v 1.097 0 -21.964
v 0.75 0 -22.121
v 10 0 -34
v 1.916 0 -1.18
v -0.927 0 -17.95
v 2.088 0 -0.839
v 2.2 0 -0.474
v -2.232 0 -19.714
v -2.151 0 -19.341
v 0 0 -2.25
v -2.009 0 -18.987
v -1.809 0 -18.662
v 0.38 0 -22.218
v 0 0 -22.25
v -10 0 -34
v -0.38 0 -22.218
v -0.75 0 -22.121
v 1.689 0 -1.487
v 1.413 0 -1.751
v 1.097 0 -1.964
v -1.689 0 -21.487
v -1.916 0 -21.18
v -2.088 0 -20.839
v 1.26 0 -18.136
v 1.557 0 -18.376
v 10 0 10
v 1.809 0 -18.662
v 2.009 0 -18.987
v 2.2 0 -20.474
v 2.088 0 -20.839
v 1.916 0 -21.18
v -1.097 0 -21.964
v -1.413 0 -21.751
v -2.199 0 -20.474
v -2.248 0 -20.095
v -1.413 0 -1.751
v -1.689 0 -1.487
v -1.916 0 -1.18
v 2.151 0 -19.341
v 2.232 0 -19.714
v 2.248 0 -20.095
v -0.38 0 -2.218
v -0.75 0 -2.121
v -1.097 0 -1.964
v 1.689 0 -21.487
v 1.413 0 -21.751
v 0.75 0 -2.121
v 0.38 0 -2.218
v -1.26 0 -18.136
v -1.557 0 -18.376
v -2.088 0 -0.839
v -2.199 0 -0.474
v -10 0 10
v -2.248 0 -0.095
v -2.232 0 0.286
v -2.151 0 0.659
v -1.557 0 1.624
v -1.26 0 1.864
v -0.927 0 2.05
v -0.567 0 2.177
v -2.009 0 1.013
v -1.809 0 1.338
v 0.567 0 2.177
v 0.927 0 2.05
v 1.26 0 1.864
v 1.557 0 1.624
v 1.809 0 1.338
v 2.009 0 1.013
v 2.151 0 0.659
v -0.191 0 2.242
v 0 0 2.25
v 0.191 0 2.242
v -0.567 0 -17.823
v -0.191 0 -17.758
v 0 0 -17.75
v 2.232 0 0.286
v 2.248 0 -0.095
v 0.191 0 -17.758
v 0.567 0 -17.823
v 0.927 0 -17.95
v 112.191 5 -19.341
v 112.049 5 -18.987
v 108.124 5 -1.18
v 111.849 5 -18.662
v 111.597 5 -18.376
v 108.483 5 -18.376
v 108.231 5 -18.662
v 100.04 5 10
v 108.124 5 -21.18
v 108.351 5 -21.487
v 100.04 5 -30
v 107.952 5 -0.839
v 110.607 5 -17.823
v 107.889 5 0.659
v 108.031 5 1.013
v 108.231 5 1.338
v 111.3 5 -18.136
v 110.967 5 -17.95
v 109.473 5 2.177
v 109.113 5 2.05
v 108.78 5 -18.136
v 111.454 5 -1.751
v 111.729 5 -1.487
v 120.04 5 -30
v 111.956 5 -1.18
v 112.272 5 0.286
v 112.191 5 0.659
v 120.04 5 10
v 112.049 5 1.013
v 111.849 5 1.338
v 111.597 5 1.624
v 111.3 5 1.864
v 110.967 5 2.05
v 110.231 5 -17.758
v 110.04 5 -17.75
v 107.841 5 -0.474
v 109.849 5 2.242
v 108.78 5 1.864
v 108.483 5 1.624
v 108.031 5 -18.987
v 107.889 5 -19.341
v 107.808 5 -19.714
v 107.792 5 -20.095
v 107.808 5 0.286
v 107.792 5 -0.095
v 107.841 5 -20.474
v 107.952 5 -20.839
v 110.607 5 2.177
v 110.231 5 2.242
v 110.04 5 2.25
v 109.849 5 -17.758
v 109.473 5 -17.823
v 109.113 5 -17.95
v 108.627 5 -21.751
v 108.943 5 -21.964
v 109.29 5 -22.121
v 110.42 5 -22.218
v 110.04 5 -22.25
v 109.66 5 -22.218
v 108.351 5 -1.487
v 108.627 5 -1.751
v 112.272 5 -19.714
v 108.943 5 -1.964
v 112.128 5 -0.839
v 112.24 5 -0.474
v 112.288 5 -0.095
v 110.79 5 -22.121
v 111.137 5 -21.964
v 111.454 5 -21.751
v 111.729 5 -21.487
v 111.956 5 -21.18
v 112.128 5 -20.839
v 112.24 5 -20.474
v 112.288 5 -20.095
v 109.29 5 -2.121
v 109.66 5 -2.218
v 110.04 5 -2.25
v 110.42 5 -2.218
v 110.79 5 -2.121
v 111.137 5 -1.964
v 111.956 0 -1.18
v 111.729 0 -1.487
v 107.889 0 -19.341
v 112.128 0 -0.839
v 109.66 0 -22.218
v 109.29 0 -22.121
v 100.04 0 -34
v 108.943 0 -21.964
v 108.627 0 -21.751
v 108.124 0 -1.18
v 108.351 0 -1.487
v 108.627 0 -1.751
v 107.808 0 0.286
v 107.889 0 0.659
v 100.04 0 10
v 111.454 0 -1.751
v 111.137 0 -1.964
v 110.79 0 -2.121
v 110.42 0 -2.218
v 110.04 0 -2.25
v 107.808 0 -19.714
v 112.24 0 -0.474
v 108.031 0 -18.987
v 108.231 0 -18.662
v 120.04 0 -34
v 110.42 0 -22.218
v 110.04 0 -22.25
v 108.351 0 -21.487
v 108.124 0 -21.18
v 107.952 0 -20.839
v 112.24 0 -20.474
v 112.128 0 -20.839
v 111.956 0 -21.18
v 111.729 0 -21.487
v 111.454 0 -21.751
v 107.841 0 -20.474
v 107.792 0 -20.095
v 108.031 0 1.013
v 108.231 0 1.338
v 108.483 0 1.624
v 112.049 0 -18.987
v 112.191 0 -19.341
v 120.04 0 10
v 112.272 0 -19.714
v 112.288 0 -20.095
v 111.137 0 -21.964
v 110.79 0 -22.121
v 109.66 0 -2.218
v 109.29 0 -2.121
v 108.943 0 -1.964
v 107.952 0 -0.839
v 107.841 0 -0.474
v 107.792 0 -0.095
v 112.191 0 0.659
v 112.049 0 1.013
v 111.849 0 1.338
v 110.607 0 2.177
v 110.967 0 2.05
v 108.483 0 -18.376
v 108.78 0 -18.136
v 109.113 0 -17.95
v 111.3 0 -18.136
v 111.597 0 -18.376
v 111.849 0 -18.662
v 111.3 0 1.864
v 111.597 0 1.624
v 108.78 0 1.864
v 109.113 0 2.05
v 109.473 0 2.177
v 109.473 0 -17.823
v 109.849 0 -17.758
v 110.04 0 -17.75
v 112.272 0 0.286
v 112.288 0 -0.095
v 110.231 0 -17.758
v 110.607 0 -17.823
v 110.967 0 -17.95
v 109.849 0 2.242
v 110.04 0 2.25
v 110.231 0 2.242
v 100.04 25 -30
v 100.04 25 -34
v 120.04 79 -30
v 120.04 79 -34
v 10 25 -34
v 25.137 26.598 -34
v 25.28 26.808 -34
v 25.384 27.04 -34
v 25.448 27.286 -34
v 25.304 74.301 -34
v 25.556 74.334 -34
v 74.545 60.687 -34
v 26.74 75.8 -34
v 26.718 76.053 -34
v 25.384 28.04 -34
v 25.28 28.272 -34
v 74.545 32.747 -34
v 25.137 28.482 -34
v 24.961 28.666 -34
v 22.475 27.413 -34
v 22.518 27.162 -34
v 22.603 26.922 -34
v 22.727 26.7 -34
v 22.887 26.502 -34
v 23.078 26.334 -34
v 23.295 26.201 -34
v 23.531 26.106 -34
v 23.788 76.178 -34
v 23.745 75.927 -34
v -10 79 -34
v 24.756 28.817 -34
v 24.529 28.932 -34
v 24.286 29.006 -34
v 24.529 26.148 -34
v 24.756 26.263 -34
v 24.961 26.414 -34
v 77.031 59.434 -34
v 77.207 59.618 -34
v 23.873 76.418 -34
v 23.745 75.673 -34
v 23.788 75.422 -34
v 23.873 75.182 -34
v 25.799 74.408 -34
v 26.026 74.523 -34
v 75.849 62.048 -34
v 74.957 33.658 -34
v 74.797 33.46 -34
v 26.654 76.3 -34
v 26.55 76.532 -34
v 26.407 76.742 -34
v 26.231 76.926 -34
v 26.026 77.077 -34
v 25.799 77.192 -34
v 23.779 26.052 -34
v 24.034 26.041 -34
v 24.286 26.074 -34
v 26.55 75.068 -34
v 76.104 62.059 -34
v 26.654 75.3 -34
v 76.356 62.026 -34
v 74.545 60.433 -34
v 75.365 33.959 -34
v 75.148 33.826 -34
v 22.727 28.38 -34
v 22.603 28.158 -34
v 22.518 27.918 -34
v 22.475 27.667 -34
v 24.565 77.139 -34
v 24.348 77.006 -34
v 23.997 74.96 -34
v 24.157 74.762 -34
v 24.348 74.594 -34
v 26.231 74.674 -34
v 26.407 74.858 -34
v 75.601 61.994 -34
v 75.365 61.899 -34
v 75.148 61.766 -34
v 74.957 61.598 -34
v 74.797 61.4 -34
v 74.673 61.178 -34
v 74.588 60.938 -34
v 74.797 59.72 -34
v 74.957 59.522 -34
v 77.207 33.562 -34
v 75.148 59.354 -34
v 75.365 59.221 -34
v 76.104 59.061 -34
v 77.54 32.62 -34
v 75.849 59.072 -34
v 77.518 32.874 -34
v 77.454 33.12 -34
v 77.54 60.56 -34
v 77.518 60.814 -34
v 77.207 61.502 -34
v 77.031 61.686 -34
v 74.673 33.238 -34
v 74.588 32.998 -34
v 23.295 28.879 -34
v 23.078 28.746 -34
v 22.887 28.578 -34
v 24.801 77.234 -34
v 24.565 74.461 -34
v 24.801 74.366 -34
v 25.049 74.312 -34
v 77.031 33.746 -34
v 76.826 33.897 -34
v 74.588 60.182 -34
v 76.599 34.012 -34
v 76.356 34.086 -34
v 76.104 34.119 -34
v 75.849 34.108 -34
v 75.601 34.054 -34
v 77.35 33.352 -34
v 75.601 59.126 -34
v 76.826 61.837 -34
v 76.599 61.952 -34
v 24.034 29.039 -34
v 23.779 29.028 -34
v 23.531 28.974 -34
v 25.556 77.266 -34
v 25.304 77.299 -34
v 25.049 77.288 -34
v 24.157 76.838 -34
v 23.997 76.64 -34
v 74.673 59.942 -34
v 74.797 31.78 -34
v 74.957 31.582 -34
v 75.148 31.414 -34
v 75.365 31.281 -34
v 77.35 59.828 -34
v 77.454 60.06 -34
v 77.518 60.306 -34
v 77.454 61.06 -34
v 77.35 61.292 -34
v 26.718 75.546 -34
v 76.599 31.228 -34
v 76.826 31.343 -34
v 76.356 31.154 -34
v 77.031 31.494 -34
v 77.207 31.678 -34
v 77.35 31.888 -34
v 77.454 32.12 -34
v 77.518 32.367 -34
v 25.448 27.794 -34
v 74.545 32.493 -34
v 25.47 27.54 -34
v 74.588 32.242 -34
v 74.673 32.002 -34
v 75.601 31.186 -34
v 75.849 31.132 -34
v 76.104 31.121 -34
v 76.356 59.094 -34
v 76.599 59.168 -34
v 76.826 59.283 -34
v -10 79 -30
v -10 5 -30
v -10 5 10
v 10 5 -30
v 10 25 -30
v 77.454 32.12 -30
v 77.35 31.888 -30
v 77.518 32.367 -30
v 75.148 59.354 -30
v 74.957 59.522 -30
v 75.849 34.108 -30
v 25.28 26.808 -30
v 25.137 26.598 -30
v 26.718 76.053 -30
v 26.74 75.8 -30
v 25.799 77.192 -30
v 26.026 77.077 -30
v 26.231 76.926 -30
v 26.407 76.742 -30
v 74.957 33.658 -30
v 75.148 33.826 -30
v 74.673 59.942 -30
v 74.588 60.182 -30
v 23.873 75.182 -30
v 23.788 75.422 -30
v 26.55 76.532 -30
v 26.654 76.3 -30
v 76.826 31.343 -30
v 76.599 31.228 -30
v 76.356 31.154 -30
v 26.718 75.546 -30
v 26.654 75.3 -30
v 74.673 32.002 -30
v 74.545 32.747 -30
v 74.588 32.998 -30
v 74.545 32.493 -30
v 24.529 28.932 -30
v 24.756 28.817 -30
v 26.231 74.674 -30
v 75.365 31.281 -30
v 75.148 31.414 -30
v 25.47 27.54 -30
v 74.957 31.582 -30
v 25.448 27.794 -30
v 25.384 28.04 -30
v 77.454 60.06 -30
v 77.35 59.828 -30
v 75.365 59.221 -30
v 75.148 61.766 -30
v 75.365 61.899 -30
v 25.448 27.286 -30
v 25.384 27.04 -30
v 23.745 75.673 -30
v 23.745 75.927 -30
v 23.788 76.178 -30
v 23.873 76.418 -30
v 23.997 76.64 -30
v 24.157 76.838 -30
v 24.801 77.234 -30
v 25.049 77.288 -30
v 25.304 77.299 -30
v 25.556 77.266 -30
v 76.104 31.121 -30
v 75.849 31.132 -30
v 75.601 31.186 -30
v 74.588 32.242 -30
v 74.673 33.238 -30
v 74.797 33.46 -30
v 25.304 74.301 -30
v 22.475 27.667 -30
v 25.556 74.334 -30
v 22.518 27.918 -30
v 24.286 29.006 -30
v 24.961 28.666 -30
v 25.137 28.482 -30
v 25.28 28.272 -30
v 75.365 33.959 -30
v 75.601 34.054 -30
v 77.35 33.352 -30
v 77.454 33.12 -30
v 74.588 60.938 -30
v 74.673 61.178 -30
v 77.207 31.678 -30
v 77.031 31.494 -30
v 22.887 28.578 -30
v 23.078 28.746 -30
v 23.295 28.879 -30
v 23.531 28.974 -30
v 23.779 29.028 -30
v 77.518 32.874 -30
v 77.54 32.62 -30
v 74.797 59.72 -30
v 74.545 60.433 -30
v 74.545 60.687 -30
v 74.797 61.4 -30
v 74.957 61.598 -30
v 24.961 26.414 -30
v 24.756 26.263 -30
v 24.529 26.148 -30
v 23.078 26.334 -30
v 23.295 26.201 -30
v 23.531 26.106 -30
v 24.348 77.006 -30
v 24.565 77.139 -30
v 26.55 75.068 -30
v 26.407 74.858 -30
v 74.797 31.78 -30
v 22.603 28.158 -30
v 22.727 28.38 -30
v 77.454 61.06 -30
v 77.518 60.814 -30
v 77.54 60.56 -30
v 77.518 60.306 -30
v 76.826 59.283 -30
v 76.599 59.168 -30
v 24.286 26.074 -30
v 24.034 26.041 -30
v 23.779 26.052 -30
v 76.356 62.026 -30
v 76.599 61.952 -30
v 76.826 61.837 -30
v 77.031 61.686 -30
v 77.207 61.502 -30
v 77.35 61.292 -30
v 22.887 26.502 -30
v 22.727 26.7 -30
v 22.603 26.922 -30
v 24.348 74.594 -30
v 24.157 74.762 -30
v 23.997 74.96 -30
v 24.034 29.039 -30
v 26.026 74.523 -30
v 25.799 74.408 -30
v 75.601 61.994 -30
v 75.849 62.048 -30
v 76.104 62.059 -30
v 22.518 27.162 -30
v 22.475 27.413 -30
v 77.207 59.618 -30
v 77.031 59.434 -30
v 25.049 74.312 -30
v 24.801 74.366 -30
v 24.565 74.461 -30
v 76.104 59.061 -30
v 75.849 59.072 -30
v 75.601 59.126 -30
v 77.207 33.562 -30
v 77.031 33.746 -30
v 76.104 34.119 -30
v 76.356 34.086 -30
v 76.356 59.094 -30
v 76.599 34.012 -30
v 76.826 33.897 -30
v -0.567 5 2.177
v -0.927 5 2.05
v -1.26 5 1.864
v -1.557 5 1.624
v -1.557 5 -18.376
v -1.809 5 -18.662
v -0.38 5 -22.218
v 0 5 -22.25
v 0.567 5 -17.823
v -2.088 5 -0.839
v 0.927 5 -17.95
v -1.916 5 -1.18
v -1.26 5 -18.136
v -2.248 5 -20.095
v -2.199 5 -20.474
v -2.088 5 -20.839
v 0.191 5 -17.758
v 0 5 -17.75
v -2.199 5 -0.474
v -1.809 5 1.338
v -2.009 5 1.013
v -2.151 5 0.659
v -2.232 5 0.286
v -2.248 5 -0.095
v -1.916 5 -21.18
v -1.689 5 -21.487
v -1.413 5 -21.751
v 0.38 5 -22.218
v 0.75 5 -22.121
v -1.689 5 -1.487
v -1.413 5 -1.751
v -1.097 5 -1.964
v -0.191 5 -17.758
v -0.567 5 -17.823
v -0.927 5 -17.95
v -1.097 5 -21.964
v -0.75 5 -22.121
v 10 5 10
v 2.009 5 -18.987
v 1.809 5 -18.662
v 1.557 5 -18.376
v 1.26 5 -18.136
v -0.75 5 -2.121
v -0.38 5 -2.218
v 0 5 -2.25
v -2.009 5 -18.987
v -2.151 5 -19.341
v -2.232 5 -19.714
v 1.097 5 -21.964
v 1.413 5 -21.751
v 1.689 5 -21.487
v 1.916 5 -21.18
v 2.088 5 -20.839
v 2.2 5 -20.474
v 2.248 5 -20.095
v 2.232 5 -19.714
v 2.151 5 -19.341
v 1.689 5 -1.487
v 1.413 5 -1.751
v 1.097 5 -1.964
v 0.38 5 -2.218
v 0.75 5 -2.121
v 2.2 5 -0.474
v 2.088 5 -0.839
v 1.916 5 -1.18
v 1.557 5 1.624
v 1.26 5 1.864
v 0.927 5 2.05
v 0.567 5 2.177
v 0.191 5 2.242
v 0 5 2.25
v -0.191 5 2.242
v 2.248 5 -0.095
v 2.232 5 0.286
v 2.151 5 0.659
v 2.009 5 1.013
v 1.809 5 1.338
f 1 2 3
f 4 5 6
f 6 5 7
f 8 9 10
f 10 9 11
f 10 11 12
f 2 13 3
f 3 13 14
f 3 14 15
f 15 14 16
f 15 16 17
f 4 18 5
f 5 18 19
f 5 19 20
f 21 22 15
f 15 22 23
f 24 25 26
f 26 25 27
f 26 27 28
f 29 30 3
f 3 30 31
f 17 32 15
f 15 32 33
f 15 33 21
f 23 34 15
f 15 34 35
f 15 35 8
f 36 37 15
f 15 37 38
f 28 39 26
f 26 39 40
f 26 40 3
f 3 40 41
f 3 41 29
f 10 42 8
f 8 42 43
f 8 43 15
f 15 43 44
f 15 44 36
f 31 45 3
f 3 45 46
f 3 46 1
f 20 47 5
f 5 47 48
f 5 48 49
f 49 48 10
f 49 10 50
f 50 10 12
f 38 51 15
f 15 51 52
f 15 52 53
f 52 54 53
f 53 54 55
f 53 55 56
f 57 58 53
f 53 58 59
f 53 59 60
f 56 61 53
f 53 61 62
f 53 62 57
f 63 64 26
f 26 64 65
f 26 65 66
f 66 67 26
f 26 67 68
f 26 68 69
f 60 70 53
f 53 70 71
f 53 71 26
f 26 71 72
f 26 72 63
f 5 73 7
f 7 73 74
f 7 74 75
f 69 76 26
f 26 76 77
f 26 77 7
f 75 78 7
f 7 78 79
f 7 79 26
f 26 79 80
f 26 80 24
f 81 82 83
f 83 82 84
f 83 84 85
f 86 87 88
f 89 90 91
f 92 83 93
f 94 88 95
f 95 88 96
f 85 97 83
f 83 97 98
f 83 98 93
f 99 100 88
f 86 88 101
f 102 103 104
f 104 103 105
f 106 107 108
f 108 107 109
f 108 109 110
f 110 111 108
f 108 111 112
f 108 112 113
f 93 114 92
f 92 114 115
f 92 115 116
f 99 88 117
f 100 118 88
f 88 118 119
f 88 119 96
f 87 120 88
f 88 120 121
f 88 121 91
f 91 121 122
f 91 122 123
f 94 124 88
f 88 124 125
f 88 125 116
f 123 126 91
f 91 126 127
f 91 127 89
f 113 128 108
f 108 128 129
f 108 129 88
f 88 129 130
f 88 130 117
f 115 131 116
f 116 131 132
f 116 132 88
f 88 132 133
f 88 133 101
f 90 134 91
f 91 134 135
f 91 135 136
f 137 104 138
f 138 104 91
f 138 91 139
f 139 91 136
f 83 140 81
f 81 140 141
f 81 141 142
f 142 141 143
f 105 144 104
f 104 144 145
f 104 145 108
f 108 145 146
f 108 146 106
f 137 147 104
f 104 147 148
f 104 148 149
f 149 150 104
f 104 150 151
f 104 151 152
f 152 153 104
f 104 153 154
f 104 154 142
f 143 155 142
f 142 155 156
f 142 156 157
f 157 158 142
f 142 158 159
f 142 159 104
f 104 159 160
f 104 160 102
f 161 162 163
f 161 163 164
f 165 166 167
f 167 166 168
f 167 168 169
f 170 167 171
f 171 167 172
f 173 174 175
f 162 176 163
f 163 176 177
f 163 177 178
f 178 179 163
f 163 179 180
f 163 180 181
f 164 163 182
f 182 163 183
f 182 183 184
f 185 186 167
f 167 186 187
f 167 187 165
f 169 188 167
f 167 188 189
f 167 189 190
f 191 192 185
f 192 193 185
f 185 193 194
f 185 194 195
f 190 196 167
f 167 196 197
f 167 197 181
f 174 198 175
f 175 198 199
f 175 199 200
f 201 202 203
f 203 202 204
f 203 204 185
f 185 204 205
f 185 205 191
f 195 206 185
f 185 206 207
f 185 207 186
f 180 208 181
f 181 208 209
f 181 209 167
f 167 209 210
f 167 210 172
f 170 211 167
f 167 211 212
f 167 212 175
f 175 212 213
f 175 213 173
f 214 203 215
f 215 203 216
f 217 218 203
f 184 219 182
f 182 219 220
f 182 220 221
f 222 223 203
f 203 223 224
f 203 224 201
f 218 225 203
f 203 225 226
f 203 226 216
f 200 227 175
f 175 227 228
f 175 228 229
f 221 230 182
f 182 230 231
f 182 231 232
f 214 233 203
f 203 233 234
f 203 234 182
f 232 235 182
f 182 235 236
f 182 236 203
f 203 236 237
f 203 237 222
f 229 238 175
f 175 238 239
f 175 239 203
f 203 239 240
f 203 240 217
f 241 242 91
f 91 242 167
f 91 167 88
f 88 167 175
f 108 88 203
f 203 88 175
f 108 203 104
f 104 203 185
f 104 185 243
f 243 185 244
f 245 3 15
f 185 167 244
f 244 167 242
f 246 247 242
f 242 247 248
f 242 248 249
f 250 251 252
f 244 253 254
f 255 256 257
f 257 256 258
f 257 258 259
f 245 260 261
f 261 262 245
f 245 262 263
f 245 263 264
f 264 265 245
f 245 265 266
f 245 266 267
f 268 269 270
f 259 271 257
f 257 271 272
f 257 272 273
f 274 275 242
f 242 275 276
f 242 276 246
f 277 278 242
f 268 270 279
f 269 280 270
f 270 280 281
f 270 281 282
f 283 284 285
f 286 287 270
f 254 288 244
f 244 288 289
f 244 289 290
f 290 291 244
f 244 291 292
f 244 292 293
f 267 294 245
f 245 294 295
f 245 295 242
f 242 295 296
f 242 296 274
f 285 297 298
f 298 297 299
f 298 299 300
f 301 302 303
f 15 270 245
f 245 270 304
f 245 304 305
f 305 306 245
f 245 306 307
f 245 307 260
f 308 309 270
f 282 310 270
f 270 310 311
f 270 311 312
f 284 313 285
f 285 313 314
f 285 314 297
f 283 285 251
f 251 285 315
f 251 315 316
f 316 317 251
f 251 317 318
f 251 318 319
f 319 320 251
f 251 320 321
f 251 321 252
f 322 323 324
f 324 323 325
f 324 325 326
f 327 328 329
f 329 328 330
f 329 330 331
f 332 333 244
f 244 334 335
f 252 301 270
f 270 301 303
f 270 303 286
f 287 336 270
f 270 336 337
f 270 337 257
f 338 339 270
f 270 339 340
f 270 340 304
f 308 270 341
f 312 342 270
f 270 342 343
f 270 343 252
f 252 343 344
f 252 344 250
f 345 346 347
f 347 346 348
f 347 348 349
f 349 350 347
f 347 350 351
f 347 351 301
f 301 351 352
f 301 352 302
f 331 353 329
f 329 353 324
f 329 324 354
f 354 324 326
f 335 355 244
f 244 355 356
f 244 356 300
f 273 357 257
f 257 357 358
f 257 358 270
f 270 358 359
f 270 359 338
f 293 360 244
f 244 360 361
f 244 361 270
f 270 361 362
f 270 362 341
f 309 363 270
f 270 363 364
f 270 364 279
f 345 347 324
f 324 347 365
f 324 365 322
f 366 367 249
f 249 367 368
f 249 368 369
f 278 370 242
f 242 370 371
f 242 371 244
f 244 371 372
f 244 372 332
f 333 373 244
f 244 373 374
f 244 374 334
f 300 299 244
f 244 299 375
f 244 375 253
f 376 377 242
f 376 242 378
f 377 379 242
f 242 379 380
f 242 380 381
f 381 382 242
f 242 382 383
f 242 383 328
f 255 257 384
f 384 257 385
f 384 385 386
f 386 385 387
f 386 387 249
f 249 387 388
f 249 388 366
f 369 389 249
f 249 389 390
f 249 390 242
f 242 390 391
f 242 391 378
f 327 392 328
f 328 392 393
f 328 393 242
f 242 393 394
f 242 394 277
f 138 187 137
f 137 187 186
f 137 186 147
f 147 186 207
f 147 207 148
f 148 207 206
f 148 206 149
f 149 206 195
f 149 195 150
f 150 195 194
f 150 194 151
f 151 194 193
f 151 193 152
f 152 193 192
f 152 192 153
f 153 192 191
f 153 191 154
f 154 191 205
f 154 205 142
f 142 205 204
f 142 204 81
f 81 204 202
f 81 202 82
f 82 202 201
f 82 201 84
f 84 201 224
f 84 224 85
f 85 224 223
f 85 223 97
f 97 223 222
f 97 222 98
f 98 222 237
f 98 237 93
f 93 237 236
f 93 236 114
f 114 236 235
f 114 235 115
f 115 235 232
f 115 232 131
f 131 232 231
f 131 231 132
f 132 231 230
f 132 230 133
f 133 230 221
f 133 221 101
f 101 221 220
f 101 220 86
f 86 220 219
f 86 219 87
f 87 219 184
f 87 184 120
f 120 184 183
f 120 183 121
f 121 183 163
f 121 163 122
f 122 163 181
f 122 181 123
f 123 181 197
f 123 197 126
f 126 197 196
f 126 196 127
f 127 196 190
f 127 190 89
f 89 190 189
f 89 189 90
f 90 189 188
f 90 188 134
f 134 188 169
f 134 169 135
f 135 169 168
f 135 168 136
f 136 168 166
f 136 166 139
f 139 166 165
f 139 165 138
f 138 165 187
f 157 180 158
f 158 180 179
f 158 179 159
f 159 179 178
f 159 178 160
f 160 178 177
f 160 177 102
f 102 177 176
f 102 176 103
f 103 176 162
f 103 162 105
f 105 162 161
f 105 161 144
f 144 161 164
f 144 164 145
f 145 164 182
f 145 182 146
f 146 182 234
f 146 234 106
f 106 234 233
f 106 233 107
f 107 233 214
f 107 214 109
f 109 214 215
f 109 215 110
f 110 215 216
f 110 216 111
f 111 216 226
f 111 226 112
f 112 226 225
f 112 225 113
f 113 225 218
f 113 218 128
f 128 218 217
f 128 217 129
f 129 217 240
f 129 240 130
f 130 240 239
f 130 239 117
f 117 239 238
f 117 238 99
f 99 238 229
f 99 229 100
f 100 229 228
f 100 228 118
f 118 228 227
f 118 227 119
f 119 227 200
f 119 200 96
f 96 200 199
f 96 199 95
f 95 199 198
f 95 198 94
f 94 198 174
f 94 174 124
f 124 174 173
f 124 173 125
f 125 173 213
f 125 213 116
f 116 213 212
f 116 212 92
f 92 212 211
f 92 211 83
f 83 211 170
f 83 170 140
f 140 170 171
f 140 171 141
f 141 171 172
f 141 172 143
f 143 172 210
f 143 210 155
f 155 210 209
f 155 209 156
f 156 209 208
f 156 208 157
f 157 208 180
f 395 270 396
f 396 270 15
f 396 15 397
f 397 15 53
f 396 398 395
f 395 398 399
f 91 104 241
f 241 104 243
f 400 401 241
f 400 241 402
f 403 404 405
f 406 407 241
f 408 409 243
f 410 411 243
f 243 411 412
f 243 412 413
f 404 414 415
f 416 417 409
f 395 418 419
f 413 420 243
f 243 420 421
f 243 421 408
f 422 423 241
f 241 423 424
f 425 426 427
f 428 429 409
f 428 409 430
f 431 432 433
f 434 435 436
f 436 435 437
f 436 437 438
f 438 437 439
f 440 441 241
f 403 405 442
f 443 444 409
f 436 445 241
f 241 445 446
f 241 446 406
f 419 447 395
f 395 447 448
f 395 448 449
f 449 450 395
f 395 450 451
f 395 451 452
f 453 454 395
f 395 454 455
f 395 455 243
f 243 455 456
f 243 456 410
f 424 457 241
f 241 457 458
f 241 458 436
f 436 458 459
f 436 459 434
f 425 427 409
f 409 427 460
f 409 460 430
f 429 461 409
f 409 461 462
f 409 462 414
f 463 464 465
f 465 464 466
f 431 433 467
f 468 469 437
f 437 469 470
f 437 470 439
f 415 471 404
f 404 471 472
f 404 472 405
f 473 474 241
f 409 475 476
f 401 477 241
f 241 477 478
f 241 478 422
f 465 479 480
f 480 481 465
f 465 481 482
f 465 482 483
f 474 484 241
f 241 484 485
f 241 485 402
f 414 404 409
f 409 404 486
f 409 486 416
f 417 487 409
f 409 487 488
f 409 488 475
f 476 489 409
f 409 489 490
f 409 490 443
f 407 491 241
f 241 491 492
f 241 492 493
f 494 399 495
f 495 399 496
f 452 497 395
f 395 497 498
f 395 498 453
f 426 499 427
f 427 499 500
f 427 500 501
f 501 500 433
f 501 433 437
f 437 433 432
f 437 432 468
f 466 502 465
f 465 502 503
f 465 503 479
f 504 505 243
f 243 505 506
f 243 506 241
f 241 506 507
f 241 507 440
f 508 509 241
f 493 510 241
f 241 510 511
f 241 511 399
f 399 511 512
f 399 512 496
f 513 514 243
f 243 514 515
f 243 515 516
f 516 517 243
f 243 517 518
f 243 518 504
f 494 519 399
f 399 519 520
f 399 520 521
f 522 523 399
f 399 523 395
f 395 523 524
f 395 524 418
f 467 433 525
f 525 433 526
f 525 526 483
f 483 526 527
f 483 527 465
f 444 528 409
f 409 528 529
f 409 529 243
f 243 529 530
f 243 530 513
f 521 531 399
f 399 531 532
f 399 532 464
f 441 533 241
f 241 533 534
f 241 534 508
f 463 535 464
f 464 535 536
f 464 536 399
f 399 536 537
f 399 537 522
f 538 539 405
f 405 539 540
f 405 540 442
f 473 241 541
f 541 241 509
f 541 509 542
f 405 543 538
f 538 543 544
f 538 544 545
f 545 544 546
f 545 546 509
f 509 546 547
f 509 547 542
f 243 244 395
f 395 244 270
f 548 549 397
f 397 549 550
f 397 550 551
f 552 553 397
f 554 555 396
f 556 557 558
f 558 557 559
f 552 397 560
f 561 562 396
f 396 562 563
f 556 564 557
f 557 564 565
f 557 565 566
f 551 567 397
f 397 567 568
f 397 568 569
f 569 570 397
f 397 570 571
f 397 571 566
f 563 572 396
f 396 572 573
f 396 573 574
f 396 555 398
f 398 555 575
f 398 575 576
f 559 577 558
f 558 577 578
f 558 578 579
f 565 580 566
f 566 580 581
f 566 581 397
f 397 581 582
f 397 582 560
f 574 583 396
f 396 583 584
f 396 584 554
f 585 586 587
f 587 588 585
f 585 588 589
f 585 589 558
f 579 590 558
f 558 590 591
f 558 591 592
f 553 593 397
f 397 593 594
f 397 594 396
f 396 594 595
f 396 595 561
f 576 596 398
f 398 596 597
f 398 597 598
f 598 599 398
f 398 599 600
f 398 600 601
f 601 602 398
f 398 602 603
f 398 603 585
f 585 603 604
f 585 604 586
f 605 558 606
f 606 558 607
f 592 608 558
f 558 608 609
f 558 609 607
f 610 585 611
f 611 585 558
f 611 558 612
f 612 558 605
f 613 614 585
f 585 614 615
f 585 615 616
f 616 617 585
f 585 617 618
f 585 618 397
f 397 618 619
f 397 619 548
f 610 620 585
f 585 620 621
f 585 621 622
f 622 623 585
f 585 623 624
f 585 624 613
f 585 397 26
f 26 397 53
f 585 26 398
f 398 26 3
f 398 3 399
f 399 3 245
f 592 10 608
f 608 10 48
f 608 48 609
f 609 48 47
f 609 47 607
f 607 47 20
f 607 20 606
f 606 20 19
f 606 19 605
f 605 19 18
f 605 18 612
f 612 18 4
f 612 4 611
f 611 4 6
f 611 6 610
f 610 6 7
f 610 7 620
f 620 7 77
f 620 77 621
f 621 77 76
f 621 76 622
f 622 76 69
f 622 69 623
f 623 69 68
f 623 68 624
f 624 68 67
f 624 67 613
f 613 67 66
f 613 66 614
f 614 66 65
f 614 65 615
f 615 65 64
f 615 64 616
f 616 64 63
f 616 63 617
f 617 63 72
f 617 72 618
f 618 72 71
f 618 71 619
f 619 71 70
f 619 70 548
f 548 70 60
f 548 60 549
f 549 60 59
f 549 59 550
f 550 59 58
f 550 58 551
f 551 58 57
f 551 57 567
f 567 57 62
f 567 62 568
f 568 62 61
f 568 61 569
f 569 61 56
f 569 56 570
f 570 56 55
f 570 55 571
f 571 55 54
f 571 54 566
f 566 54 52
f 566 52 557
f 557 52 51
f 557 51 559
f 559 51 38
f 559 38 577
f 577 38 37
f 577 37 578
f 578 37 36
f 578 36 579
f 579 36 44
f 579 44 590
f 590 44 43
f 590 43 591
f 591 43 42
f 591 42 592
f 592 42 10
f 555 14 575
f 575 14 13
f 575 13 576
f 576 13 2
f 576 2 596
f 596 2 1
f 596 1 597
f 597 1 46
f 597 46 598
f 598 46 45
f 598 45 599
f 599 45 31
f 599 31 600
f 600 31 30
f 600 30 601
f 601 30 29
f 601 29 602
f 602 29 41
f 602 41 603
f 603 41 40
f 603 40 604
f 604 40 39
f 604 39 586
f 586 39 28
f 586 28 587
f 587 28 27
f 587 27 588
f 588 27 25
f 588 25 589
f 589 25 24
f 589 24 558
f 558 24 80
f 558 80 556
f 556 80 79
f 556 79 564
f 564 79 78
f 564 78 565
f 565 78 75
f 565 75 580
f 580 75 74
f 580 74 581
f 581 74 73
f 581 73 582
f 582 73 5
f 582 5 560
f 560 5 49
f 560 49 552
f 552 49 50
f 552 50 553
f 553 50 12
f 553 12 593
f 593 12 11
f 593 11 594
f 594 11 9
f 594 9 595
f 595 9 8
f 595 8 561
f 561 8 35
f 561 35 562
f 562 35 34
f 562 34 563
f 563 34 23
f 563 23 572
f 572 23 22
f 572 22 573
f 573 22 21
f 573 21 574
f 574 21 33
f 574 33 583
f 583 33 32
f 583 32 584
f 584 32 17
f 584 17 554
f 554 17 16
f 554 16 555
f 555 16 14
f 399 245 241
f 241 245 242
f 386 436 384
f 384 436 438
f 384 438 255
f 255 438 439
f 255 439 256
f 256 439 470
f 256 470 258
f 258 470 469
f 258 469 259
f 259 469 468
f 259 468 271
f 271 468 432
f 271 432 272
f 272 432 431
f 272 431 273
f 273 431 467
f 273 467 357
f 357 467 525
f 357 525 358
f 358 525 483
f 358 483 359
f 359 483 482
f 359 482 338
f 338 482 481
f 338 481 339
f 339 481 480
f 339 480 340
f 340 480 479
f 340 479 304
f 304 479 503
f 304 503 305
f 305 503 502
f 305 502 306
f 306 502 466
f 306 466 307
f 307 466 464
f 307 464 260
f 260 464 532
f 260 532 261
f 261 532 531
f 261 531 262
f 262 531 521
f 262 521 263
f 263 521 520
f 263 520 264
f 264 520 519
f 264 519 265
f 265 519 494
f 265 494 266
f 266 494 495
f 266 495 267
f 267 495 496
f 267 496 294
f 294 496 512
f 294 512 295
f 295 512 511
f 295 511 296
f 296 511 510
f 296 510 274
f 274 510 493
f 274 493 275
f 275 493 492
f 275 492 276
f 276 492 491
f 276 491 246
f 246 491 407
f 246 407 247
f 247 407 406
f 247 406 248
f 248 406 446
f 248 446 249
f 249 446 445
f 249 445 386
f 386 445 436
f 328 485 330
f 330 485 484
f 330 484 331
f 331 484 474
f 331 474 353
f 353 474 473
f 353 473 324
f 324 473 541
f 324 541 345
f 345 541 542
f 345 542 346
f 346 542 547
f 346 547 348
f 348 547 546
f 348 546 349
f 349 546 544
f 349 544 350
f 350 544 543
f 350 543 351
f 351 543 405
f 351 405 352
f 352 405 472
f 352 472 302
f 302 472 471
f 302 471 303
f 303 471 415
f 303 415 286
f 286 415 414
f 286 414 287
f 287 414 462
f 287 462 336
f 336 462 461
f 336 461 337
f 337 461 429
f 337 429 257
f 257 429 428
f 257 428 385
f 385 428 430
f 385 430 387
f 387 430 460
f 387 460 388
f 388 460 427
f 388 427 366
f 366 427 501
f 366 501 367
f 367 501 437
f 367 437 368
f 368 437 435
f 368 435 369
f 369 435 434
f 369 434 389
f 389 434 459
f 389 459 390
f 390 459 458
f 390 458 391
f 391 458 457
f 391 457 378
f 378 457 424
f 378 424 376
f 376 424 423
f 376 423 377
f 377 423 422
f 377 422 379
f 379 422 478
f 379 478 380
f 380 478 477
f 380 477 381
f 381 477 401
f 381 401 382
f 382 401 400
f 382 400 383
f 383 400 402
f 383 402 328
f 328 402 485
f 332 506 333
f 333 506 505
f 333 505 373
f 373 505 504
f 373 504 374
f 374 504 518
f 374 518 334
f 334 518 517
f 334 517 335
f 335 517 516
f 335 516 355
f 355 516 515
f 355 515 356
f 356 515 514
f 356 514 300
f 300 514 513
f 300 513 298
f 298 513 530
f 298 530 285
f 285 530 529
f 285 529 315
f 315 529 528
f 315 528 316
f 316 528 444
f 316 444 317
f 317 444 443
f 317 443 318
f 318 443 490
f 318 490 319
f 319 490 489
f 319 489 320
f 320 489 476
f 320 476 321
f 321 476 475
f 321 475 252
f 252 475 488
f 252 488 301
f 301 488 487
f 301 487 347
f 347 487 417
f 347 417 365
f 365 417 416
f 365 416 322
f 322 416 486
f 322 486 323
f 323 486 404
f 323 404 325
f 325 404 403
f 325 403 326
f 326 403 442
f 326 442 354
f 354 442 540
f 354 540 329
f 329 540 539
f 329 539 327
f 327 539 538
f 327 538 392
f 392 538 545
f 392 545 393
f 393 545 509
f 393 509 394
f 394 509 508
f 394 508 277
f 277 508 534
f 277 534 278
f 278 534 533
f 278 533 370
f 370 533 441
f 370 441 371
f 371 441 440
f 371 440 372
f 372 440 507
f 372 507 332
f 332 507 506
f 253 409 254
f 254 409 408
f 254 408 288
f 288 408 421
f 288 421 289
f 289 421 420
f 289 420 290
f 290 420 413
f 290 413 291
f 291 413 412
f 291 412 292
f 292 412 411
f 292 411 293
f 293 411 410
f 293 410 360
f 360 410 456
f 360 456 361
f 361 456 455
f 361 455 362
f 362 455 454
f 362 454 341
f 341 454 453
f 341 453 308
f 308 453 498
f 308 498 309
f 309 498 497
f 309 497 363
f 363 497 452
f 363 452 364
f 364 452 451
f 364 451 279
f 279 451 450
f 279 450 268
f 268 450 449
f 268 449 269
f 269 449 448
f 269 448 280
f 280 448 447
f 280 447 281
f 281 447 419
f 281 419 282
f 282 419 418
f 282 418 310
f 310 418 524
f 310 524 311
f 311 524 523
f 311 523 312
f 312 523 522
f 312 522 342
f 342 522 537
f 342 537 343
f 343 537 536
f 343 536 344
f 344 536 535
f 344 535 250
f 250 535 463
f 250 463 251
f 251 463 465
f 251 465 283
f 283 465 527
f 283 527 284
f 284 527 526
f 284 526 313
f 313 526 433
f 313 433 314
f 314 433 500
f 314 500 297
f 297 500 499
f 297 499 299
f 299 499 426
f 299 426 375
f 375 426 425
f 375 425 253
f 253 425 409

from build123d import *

# Parameters (mm, degrees)
SKETCH1_W                 = 20
SKETCH1_H                 = 44
SKETCH1_R                 = 2.25
BOSS_EXTRUDE1_DEPTH       = 5
BOSS_EXTRUDE1_2_DEPTH     = 5
SKETCH2_W                 = 130.04
SKETCH2_H                 = 4
BOSS_EXTRUDE2_DEPTH       = 74
BOSS_EXTRUDE2_DEPTH_BACK  = 5
SKETCH3_W                 = 90.04
SKETCH3_H                 = 25
CUT_EXTRUDE1_DEPTH        = 5
F_3_0MM_DOWEL_HOLE1_D     = 3
F_3_0MM_DOWEL_HOLE1_DEPTH = 5
F_3_0MM_DOWEL_HOLE1_TIP   = 0.901290929


with BuildPart() as part:
    # Sketch1 → Boss-Extrude1 (new body)
    with BuildSketch(Plane(origin=(0, 0, 0), x_dir=(1, 0, 0), z_dir=(0, 1, 0))):
        with Locations((0, 12)):
            Rectangle(SKETCH1_W, SKETCH1_H)
        Circle(SKETCH1_R, mode=Mode.SUBTRACT)
        with Locations((0, 20)):
            Circle(SKETCH1_R, mode=Mode.SUBTRACT)
    extrude(amount=BOSS_EXTRUDE1_DEPTH)



with BuildPart() as body_2:
    # Sketch1 → Boss-Extrude1 2 (new body)
    with BuildSketch(Plane(origin=(0, 0, 0), x_dir=(1, 0, 0), z_dir=(0, 1, 0))):
        with Locations((110.04, 12)):
            Rectangle(SKETCH1_W, SKETCH1_H)
        with Locations((110.04, 20)):
            Circle(SKETCH1_R, mode=Mode.SUBTRACT)
        with Locations((110.04, 0)):
            Circle(SKETCH1_R, mode=Mode.SUBTRACT)
    extrude(amount=BOSS_EXTRUDE1_2_DEPTH)


with BuildPart() as part_1:
    add(part.part)

    add(body_2.part)  # Boss-Extrude2 merges body 2
    # Sketch2 → Boss-Extrude2 (add, two sides)
    with BuildSketch(Plane(origin=(0, 5, 0), x_dir=(1, 0, 0), z_dir=(0, 1, 0))) as boss_extrude2_sk:
        with Locations((55.02, 32)):
            Rectangle(SKETCH2_W, SKETCH2_H)
    extrude(amount=BOSS_EXTRUDE2_DEPTH)
    extrude(boss_extrude2_sk.sketch, amount=-BOSS_EXTRUDE2_DEPTH_BACK)

    # Sketch3 → Cut-Extrude1 (cut)
    with BuildSketch(Plane.XY.offset(-30)):
        with Locations((55.02, 12.5)):
            Rectangle(SKETCH3_W, SKETCH3_H)
    extrude(amount=-CUT_EXTRUDE1_DEPTH, mode=Mode.SUBTRACT)

    # Ø3.0mm Dowel Hole1
    with Locations(Plane(origin=(55.834419791, -56, -30), x_dir=(1, 0, 0), z_dir=(0, 0, 1))):
        with Locations((-30.594419791, 131.8), (20.205580209, 116.56), (20.205580209, 88.62), (-31.864419791, 83.54)):
            Hole(F_3_0MM_DOWEL_HOLE1_D / 2, depth=F_3_0MM_DOWEL_HOLE1_DEPTH)
            with Locations((0, 0, -(F_3_0MM_DOWEL_HOLE1_DEPTH + F_3_0MM_DOWEL_HOLE1_TIP / 2))):  # 118° drill point
                Cone(0, F_3_0MM_DOWEL_HOLE1_D / 2, F_3_0MM_DOWEL_HOLE1_TIP, mode=Mode.SUBTRACT)


solid = part_1.part
